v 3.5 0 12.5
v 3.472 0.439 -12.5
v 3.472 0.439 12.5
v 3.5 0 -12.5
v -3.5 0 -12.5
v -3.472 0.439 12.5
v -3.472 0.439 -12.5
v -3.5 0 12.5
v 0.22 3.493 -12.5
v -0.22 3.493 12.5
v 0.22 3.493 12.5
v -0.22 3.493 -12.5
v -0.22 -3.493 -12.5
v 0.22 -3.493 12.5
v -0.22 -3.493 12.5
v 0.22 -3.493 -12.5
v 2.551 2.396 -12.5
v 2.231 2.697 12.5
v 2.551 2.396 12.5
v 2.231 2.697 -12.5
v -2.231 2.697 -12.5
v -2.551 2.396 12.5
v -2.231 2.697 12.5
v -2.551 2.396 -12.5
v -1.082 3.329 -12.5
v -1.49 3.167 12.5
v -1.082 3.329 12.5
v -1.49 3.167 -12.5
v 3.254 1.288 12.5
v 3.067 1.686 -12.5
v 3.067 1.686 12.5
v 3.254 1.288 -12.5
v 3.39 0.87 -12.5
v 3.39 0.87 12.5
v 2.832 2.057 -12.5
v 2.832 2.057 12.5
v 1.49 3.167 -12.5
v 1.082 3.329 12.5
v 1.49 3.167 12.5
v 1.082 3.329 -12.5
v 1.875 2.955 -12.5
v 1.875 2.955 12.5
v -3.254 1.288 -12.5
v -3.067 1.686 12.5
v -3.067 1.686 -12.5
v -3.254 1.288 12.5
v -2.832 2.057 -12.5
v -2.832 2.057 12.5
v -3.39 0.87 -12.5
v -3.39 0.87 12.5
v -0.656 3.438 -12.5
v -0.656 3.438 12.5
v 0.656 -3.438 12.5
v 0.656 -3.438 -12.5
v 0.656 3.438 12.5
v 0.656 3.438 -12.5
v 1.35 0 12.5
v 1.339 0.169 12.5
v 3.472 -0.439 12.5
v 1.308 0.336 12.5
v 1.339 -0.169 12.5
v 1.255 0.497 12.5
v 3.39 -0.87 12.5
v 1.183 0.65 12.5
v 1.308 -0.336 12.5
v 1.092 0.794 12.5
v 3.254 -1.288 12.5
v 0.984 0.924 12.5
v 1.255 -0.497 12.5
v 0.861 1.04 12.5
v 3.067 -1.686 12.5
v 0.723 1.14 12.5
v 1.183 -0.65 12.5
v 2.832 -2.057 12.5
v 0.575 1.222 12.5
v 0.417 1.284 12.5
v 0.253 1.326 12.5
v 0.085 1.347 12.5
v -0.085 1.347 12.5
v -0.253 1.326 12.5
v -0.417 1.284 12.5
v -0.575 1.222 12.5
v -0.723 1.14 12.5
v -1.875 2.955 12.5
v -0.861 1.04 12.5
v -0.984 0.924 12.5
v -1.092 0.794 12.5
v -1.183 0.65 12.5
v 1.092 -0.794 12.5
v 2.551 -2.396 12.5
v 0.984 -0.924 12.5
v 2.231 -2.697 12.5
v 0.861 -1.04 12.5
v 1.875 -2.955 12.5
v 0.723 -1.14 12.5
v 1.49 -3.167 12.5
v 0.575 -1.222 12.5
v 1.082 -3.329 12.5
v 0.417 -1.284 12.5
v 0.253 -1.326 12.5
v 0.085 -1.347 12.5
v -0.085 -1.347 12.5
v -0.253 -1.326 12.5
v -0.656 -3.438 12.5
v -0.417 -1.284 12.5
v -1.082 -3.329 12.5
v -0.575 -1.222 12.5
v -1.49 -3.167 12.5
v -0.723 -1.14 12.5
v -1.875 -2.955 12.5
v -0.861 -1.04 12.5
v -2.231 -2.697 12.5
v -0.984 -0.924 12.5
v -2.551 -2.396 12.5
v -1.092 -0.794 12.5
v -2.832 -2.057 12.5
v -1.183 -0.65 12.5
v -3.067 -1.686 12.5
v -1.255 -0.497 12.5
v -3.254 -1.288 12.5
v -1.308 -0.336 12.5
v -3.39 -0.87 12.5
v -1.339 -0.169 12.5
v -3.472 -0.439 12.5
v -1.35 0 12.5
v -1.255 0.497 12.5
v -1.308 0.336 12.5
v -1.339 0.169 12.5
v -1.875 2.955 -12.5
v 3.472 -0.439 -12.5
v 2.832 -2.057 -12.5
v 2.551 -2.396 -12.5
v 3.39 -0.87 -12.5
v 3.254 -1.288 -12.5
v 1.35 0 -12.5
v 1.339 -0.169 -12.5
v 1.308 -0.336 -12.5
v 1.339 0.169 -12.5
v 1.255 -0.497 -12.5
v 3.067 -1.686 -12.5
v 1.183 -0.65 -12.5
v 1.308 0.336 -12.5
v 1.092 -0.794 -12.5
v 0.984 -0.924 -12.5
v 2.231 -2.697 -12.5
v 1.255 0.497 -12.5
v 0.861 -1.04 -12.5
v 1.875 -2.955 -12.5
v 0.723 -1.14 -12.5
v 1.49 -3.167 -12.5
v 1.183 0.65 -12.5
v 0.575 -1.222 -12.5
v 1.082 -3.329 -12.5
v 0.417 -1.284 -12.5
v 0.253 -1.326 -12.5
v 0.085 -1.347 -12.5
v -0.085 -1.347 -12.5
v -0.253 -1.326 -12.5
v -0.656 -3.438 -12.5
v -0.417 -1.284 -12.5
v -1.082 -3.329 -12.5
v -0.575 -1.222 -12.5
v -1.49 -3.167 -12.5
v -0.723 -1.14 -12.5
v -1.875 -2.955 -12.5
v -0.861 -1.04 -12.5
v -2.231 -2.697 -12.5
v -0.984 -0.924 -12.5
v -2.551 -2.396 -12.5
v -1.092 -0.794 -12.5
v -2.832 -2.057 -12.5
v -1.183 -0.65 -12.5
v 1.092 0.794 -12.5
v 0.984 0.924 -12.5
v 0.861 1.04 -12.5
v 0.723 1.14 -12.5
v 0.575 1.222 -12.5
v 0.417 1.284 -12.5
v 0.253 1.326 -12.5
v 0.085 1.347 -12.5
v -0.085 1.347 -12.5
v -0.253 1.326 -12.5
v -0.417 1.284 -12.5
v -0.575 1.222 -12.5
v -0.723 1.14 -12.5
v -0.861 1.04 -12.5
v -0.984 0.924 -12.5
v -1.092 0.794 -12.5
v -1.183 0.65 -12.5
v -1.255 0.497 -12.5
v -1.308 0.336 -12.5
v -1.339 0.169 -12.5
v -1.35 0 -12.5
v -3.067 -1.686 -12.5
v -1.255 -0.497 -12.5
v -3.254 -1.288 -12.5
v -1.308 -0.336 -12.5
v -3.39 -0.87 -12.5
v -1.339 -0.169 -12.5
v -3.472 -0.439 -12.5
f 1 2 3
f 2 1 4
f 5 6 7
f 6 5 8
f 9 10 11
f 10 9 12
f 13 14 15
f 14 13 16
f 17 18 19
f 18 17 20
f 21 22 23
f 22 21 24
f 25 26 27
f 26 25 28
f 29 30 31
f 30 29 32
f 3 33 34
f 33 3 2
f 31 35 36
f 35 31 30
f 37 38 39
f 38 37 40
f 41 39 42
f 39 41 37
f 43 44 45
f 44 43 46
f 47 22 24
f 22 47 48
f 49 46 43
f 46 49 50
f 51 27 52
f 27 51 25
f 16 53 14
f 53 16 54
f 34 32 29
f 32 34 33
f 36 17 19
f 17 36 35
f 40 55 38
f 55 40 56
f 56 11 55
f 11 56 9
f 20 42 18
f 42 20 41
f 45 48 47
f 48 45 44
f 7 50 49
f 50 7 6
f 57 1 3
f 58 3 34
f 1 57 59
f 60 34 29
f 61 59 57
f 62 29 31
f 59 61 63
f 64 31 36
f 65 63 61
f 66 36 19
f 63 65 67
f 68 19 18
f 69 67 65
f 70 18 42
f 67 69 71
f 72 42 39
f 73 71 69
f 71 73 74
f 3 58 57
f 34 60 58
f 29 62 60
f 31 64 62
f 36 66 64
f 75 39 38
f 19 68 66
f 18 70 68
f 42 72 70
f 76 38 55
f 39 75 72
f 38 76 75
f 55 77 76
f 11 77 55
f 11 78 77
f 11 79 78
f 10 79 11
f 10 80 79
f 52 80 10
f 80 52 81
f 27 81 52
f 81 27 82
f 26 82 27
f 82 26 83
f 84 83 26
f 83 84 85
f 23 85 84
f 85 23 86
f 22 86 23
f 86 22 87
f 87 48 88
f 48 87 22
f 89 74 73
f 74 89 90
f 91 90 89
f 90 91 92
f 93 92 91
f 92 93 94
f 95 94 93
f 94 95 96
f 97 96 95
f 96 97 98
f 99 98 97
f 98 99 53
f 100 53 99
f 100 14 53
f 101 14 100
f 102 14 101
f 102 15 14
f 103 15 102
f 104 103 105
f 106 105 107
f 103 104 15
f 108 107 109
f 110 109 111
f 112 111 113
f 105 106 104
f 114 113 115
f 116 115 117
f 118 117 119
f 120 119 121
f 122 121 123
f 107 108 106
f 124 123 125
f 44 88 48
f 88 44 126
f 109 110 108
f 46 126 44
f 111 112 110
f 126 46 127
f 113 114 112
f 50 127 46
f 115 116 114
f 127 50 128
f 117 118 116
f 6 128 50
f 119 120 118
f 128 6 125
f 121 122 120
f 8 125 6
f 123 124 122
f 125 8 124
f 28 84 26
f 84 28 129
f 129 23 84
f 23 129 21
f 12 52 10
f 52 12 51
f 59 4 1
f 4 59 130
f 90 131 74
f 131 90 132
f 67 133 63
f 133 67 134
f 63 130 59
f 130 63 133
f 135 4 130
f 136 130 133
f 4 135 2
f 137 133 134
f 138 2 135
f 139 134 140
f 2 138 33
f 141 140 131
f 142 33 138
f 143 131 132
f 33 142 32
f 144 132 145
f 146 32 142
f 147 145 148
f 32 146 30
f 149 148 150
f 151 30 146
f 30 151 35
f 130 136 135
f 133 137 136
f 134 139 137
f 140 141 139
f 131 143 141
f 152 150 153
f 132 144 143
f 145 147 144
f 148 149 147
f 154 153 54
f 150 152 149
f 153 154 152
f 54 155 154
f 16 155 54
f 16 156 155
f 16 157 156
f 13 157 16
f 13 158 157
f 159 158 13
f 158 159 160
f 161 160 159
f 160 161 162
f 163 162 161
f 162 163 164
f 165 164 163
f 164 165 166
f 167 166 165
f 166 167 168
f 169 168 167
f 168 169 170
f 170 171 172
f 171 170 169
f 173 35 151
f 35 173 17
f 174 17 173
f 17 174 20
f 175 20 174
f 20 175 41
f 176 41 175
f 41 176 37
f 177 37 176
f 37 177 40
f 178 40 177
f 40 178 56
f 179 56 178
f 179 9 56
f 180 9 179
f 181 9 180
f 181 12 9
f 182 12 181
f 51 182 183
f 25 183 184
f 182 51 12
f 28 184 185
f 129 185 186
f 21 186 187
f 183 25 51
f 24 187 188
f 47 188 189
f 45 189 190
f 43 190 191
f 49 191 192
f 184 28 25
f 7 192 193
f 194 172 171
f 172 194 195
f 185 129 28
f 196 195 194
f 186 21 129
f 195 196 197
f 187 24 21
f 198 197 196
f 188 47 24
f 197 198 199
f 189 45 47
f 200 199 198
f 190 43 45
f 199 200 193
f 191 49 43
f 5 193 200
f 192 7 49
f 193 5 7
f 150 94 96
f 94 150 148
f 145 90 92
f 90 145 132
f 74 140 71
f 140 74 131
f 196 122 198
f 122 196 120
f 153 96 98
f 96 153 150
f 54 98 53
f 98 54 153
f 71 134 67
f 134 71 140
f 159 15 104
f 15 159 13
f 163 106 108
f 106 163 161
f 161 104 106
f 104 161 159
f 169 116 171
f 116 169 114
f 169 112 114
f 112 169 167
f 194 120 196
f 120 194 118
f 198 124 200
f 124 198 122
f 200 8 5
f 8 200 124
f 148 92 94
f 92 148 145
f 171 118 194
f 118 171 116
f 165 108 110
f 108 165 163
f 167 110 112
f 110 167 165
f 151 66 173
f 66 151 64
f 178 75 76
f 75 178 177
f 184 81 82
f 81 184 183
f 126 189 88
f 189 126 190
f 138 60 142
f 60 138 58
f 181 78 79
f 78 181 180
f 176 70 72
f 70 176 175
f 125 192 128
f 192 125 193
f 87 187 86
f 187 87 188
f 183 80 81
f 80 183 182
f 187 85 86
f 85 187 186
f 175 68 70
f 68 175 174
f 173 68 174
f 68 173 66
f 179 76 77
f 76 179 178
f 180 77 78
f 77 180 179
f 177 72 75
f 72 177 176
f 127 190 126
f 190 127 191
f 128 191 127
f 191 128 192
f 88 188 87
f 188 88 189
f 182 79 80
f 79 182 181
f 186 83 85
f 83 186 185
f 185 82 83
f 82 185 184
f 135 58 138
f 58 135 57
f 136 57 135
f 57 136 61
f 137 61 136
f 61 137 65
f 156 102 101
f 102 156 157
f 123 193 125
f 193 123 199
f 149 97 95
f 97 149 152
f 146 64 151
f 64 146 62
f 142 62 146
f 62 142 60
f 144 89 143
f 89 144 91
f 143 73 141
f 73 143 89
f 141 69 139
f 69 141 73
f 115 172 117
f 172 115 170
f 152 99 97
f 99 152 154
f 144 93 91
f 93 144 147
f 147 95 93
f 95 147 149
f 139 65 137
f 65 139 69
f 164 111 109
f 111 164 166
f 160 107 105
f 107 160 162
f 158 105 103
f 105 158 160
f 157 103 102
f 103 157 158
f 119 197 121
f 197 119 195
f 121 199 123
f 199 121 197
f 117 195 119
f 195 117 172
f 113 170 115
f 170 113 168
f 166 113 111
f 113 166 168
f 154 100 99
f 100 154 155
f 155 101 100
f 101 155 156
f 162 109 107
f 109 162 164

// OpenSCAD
$fn = 50;


difference() {
	union() {
		translate(v = [0, 0, -12.5000000000]) {
			cylinder(h = 25, r = 3.5000000000);
		}
	}
	union() {
		translate(v = [0, 0, -100.0000000000]) {
			cylinder(h = 200, r = 1.3500000000);
		}
	}
}
